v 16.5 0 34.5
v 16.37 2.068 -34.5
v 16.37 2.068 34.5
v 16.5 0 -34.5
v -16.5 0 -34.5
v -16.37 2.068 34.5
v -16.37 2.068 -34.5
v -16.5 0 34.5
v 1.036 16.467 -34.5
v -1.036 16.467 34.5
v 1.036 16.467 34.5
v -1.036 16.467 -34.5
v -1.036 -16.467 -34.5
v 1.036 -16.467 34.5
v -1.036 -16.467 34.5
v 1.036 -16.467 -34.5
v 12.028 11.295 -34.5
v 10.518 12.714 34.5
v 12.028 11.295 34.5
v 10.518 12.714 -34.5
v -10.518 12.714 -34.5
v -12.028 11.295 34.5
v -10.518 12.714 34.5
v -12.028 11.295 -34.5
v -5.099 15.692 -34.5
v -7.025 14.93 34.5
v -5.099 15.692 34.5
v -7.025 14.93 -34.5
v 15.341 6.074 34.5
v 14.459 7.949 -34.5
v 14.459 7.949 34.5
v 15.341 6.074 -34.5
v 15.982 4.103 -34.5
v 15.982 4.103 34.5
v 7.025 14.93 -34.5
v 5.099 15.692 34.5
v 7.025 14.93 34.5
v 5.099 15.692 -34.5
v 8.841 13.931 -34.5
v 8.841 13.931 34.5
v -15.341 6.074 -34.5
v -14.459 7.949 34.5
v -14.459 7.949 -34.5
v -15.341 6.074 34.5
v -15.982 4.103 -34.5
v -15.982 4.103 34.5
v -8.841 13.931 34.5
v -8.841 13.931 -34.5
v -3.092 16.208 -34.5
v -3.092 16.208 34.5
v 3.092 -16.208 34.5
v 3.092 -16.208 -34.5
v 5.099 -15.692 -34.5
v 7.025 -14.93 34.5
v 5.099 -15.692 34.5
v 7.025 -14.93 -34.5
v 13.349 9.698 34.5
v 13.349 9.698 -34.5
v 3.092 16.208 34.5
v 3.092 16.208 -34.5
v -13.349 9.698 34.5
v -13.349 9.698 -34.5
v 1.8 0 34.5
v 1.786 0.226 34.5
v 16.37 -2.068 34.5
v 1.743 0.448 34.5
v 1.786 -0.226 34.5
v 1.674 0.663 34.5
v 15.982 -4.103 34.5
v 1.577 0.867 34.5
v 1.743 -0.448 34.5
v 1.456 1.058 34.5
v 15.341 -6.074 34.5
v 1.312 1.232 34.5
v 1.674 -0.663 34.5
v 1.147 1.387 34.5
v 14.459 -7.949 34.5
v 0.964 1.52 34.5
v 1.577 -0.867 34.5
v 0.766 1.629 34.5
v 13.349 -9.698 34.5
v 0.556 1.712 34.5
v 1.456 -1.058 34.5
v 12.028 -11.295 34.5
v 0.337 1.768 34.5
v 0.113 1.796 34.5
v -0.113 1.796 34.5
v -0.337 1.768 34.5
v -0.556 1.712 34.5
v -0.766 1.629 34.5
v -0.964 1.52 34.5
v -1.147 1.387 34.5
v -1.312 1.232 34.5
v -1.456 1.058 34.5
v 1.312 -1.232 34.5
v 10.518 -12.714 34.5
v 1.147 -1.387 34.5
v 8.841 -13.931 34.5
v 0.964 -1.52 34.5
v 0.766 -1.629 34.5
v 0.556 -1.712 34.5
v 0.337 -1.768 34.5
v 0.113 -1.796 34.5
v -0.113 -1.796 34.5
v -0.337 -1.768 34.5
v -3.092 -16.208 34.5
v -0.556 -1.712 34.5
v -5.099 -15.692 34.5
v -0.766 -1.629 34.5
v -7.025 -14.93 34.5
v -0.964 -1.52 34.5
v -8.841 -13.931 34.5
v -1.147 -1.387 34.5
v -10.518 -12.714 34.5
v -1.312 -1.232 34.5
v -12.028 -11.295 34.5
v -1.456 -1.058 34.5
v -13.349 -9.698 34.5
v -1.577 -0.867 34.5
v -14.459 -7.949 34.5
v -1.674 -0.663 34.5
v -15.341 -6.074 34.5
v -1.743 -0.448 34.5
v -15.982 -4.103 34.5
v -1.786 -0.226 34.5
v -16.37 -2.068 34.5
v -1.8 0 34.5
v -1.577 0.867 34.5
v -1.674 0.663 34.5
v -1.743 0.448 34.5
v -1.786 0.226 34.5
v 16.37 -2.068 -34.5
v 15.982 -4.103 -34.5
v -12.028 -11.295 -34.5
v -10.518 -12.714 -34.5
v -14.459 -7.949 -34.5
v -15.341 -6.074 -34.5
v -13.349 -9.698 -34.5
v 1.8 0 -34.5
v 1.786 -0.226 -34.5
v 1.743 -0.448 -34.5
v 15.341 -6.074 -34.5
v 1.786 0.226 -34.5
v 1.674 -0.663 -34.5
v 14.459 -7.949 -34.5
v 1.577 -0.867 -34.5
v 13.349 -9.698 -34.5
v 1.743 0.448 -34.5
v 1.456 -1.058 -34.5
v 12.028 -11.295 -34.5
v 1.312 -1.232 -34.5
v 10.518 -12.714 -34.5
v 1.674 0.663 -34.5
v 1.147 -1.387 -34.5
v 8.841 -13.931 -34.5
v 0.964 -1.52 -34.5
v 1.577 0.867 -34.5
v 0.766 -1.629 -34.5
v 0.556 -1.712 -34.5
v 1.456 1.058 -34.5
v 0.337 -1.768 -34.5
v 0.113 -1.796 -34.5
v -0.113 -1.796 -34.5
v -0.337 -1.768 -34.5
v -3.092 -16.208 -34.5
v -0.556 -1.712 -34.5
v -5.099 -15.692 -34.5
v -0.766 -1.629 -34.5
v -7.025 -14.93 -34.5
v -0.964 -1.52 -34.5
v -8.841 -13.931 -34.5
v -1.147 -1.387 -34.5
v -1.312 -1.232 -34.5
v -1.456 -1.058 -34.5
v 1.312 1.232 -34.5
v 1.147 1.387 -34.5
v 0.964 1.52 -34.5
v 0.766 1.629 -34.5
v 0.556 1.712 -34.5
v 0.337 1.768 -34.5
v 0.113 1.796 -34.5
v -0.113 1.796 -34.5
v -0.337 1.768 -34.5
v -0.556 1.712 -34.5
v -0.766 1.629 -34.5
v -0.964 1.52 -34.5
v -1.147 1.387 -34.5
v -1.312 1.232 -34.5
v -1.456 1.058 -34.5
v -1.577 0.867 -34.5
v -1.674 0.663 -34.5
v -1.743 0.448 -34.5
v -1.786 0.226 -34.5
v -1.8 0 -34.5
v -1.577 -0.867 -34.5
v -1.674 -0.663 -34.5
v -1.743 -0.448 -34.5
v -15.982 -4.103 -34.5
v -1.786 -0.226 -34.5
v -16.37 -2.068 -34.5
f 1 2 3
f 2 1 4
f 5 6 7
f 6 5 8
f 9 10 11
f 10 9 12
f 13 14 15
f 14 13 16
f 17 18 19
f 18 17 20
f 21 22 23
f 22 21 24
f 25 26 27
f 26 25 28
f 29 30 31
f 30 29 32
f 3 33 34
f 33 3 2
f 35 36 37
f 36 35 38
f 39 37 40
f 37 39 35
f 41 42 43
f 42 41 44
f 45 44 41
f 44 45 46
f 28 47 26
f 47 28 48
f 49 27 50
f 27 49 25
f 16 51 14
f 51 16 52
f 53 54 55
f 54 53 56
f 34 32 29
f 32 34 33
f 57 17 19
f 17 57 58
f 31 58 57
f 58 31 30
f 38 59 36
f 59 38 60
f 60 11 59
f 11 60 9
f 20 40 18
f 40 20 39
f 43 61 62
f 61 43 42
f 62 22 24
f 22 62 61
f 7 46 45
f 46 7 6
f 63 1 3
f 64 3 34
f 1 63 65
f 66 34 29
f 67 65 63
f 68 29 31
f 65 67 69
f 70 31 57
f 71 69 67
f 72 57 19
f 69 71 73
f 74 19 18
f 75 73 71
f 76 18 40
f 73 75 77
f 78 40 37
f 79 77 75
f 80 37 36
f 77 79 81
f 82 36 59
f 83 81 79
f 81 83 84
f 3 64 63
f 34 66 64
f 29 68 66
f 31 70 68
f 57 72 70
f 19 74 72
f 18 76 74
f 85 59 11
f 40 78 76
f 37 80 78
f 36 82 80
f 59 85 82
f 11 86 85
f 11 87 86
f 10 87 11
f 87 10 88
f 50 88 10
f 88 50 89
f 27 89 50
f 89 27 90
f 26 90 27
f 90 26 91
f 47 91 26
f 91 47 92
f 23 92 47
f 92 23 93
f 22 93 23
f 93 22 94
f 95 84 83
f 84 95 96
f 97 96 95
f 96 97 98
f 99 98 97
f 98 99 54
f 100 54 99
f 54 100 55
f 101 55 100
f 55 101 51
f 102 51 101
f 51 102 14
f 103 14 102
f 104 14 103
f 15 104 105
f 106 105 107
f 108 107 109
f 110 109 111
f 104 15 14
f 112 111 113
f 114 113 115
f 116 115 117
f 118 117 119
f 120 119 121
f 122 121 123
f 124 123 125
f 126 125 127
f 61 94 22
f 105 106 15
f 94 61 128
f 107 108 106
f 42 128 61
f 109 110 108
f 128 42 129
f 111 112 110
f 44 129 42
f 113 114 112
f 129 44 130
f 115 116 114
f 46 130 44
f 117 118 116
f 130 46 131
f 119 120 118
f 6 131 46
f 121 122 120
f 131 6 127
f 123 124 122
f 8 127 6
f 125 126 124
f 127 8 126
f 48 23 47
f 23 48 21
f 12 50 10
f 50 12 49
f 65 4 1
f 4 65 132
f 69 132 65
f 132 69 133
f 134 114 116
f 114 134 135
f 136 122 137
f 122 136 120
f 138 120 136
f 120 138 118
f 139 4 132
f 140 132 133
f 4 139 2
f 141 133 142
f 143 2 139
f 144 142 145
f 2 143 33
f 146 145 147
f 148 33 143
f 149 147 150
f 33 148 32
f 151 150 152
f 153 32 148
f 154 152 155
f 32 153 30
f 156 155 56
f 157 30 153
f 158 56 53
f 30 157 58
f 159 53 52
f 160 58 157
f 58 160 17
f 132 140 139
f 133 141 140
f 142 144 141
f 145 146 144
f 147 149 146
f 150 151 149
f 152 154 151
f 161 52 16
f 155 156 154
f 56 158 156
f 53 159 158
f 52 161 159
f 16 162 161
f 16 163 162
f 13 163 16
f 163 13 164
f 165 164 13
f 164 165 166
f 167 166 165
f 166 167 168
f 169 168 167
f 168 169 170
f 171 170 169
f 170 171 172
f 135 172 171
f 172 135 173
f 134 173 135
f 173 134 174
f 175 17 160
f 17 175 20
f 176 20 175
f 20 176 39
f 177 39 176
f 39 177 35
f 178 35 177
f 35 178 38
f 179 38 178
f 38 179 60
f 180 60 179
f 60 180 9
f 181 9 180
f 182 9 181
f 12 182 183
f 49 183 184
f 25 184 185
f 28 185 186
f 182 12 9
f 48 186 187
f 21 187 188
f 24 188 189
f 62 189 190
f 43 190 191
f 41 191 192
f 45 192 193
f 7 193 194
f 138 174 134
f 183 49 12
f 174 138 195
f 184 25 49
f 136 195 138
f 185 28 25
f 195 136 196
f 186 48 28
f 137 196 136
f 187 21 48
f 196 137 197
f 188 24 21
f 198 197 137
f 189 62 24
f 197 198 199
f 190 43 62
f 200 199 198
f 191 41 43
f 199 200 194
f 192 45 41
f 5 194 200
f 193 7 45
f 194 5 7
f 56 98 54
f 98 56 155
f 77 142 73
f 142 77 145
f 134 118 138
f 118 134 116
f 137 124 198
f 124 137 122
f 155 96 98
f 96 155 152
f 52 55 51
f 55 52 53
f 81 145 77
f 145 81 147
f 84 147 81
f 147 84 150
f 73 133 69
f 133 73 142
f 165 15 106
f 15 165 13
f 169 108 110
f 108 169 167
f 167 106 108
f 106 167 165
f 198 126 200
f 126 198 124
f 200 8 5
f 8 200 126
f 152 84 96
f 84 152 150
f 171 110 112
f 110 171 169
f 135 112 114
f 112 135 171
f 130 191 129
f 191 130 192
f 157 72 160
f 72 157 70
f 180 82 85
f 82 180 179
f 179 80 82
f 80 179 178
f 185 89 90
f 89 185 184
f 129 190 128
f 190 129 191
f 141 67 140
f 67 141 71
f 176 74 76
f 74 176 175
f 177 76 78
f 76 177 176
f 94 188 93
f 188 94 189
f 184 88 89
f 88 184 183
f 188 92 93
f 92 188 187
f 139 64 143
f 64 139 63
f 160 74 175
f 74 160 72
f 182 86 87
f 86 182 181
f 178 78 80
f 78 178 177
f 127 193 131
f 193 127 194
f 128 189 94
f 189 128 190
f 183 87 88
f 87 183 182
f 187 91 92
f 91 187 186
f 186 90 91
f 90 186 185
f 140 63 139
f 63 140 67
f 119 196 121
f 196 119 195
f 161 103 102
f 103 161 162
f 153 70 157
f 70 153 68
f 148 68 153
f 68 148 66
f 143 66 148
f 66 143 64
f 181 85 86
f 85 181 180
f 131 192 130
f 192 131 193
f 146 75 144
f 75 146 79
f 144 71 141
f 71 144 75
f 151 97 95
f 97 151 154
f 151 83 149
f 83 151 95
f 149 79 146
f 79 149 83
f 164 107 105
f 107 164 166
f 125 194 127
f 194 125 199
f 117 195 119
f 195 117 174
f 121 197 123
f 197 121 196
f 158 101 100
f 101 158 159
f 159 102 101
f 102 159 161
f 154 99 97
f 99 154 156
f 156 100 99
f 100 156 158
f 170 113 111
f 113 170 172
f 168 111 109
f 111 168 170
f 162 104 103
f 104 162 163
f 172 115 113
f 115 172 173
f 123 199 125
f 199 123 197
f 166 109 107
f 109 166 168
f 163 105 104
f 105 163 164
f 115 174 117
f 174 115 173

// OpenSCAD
$fn = 50;


difference() {
	union() {
		translate(v = [0, 0, -34.5000000000]) {
			cylinder(h = 69, r = 16.5000000000);
		}
	}
	union() {
		translate(v = [0, 0, -100.0000000000]) {
			cylinder(h = 200, r = 1.8000000000);
		}
	}
}
